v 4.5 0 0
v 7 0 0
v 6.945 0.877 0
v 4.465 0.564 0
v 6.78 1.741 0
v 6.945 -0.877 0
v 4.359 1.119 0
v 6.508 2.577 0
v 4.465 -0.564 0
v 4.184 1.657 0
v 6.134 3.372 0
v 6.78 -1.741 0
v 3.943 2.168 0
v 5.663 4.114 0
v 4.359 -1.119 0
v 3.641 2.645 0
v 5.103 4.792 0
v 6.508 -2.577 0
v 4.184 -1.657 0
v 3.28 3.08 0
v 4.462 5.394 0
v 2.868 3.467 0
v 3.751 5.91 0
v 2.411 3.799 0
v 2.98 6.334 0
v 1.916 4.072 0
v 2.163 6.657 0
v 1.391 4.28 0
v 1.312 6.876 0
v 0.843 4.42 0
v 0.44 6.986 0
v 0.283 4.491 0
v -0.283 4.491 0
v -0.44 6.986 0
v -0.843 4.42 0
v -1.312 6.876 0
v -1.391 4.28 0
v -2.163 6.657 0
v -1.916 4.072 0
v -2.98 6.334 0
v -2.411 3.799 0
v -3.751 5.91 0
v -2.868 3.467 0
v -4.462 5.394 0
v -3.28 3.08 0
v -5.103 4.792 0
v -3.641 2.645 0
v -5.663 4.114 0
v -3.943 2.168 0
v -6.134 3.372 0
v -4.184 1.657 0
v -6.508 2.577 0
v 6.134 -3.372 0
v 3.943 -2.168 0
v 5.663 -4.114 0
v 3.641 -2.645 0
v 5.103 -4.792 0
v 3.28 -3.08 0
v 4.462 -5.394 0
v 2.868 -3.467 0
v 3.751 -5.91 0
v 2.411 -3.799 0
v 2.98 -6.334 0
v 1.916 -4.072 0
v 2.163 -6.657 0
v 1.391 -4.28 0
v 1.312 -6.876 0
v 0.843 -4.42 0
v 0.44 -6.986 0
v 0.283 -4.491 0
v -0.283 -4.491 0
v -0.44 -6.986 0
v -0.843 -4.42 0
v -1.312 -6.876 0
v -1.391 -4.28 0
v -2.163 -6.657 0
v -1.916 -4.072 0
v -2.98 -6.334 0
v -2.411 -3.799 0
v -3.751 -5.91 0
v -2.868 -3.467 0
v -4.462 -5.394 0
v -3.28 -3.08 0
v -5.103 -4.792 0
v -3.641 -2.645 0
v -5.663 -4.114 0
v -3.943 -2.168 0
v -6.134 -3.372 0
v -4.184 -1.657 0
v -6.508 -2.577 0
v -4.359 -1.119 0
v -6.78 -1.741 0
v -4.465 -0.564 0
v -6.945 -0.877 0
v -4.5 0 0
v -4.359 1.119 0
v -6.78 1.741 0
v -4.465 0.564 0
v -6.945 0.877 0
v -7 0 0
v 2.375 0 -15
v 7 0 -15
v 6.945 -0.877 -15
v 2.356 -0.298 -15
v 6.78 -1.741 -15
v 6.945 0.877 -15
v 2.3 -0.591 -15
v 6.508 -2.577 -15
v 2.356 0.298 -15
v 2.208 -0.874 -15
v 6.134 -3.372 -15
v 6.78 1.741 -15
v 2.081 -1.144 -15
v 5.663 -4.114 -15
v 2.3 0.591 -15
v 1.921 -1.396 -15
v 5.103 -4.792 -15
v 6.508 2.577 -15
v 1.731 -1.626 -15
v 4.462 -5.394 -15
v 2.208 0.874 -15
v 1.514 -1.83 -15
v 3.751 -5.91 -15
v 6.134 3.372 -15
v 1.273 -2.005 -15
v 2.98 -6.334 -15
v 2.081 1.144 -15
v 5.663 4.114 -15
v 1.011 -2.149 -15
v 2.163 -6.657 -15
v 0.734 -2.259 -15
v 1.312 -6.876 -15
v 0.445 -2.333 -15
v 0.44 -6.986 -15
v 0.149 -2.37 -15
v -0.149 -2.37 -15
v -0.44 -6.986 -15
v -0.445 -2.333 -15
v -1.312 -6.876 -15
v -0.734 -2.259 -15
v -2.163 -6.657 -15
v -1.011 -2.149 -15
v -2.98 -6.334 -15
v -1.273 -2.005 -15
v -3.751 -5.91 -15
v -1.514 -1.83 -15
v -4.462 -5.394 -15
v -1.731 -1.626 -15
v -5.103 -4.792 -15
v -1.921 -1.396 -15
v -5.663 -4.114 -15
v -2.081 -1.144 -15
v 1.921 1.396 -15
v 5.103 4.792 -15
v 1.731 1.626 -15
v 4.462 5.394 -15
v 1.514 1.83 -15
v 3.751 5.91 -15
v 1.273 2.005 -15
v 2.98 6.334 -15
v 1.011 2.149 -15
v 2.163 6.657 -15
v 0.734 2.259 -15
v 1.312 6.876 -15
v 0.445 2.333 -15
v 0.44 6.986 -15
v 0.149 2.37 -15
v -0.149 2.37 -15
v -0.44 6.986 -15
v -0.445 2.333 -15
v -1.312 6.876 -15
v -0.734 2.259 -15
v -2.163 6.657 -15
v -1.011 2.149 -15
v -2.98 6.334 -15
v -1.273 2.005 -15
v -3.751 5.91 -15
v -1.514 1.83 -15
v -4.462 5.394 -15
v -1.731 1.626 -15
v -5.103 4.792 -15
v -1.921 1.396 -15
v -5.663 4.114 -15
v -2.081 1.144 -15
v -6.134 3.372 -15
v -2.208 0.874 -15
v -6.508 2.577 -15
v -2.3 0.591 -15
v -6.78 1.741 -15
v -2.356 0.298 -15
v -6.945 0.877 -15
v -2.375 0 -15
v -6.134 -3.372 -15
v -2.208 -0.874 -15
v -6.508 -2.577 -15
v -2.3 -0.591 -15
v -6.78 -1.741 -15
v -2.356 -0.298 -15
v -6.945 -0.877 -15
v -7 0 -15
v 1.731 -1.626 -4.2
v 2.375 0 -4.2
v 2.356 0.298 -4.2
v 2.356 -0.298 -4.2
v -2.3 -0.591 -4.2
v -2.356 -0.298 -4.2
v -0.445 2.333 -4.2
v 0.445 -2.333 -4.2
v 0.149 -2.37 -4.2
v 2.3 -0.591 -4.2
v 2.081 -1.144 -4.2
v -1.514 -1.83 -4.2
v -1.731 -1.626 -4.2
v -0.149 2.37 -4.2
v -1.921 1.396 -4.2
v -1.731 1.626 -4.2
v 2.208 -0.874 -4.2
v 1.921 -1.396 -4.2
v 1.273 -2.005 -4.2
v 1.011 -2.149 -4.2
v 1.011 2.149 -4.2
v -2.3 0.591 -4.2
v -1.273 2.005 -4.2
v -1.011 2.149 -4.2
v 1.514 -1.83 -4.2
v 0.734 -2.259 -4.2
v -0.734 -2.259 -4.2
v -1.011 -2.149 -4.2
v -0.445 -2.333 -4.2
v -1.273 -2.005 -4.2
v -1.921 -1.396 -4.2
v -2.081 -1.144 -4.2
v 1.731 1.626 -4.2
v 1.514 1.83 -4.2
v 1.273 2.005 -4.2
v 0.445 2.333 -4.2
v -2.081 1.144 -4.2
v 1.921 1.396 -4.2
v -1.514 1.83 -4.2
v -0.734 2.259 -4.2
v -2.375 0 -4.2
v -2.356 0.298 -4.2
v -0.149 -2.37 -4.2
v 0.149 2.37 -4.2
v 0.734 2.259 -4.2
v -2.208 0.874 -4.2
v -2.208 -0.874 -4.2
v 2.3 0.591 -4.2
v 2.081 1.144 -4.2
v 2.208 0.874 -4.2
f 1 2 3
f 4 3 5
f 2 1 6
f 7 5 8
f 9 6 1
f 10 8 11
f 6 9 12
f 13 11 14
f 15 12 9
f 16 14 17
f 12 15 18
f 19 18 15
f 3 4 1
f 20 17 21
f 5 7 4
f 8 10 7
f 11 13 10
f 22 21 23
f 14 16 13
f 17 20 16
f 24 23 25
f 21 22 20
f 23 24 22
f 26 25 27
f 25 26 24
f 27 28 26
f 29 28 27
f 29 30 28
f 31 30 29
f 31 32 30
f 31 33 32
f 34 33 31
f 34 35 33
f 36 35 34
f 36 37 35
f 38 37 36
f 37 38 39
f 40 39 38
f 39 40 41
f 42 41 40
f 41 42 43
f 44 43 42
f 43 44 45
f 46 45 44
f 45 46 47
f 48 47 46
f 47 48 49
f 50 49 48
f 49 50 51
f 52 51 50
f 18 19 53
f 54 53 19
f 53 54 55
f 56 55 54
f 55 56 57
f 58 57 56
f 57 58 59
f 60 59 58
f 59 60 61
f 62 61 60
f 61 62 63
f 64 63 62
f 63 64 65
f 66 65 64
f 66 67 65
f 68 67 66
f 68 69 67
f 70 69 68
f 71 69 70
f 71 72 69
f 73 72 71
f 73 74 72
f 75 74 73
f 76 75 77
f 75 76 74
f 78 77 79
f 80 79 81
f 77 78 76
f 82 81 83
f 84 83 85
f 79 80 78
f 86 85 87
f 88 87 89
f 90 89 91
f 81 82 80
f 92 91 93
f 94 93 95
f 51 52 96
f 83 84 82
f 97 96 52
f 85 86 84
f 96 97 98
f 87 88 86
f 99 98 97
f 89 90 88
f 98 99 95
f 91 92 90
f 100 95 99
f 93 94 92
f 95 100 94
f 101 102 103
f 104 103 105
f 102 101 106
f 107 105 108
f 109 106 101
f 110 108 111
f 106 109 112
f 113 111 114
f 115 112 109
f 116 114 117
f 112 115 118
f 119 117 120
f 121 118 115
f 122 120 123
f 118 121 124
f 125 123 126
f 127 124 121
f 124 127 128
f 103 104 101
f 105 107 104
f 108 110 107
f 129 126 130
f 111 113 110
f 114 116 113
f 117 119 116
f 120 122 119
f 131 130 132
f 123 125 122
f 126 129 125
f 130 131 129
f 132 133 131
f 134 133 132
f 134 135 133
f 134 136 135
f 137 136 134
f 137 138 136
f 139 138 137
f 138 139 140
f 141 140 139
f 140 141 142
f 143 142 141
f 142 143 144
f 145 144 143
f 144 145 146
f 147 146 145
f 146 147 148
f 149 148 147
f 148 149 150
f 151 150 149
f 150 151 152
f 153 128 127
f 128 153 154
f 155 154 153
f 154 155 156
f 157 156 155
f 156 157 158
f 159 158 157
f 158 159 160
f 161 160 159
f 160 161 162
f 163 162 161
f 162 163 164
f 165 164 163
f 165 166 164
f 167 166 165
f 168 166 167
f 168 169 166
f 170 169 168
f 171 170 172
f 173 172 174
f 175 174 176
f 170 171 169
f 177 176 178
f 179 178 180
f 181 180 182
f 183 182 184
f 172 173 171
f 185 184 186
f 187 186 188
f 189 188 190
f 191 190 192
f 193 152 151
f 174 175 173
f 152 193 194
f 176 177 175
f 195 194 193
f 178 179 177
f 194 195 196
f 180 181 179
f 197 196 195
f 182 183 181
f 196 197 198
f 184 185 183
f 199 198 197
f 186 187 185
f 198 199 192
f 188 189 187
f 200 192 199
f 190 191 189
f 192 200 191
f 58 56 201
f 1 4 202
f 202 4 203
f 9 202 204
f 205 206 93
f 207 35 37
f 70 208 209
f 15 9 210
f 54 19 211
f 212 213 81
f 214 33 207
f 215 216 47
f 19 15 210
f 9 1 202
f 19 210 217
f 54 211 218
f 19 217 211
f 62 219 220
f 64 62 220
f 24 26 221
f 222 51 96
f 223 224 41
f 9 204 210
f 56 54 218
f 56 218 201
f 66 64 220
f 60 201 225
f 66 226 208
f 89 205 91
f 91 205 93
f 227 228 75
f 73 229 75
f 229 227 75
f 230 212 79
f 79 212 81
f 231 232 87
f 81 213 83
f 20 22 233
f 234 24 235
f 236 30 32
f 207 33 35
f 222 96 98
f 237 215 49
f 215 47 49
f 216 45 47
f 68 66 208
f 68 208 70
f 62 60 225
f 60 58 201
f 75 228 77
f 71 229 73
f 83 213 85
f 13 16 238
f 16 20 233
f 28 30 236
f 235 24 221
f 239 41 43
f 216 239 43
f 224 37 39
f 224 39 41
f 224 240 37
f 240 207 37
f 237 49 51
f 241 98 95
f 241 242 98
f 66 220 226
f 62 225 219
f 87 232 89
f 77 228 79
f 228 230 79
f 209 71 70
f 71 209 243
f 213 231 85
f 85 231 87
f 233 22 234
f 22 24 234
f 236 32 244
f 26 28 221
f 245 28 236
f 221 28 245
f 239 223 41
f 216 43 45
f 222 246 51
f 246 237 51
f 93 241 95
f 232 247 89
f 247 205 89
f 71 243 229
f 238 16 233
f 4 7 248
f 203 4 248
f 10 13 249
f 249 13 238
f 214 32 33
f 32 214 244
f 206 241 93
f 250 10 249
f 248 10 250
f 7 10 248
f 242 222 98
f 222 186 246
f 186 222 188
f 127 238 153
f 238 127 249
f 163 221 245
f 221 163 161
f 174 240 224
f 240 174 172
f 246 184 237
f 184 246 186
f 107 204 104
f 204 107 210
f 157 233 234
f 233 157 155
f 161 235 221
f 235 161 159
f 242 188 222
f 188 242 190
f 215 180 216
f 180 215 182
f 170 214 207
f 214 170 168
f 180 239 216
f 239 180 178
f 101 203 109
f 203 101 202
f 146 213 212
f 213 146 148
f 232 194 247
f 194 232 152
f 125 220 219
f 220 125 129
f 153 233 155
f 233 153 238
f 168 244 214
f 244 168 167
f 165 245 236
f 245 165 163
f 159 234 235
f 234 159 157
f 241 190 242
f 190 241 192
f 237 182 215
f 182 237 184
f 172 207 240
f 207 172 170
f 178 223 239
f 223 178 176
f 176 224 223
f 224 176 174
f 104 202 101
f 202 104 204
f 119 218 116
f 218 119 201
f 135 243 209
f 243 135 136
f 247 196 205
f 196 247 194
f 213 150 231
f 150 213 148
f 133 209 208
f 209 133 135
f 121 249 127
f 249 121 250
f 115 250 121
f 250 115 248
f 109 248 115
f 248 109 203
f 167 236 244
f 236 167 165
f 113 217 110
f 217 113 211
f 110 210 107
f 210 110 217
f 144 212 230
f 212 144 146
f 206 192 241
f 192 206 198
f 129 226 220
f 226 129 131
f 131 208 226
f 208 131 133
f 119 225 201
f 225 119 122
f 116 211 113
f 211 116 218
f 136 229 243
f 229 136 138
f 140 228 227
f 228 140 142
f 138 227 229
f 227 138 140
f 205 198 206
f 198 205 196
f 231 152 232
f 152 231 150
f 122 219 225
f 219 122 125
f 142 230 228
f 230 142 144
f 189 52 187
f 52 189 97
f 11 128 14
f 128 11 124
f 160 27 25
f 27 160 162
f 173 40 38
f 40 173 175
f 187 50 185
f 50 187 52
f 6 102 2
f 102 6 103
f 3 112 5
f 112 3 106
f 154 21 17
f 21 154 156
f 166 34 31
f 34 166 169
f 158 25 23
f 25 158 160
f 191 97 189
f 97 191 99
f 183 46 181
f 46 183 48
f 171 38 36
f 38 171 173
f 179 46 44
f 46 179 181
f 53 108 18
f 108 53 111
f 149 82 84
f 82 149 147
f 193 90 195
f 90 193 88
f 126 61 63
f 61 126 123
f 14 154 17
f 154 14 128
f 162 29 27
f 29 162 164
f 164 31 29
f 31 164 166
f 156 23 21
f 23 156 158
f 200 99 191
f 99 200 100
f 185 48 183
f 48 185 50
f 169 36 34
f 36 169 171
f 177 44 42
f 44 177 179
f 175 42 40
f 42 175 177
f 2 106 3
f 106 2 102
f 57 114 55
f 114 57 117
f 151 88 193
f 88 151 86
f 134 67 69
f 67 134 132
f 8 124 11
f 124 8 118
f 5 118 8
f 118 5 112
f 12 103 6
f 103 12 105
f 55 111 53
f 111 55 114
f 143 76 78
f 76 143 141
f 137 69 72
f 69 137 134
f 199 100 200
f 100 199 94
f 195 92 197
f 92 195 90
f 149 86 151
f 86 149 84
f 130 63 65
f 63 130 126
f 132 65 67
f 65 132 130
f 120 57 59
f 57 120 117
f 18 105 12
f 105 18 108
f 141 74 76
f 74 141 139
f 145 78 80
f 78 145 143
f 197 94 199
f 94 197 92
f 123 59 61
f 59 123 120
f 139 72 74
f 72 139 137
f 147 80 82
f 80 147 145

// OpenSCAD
$fn = 50;


difference() {
	union() {
		translate(v = [0, 0, -15.0000000000]) {
			cylinder(h = 15, r = 7.0000000000);
		}
		cylinder(h = 0, r = 17.0000000000);
	}
	union() {
		translate(v = [0, 0, 0]) {
			rotate(a = [0, 0, 0]) {
				difference() {
					union() {
						#translate(v = [0, 0, -15.0000000000]) {
							cylinder(h = 15, r = 2.2500000000);
						}
						#translate(v = [0, 0, -4.2000000000]) {
							cylinder(h = 4.2000000000, r1 = 2.3750000000, r2 = 4.5000000000);
						}
						#translate(v = [0, 0, -15.0000000000]) {
							cylinder(h = 15, r = 2.3750000000);
						}
						#translate(v = [0, 0, -15.0000000000]) {
							cylinder(h = 15, r = 2.2500000000);
						}
					}
					union();
				}
			}
		}
	}
}
